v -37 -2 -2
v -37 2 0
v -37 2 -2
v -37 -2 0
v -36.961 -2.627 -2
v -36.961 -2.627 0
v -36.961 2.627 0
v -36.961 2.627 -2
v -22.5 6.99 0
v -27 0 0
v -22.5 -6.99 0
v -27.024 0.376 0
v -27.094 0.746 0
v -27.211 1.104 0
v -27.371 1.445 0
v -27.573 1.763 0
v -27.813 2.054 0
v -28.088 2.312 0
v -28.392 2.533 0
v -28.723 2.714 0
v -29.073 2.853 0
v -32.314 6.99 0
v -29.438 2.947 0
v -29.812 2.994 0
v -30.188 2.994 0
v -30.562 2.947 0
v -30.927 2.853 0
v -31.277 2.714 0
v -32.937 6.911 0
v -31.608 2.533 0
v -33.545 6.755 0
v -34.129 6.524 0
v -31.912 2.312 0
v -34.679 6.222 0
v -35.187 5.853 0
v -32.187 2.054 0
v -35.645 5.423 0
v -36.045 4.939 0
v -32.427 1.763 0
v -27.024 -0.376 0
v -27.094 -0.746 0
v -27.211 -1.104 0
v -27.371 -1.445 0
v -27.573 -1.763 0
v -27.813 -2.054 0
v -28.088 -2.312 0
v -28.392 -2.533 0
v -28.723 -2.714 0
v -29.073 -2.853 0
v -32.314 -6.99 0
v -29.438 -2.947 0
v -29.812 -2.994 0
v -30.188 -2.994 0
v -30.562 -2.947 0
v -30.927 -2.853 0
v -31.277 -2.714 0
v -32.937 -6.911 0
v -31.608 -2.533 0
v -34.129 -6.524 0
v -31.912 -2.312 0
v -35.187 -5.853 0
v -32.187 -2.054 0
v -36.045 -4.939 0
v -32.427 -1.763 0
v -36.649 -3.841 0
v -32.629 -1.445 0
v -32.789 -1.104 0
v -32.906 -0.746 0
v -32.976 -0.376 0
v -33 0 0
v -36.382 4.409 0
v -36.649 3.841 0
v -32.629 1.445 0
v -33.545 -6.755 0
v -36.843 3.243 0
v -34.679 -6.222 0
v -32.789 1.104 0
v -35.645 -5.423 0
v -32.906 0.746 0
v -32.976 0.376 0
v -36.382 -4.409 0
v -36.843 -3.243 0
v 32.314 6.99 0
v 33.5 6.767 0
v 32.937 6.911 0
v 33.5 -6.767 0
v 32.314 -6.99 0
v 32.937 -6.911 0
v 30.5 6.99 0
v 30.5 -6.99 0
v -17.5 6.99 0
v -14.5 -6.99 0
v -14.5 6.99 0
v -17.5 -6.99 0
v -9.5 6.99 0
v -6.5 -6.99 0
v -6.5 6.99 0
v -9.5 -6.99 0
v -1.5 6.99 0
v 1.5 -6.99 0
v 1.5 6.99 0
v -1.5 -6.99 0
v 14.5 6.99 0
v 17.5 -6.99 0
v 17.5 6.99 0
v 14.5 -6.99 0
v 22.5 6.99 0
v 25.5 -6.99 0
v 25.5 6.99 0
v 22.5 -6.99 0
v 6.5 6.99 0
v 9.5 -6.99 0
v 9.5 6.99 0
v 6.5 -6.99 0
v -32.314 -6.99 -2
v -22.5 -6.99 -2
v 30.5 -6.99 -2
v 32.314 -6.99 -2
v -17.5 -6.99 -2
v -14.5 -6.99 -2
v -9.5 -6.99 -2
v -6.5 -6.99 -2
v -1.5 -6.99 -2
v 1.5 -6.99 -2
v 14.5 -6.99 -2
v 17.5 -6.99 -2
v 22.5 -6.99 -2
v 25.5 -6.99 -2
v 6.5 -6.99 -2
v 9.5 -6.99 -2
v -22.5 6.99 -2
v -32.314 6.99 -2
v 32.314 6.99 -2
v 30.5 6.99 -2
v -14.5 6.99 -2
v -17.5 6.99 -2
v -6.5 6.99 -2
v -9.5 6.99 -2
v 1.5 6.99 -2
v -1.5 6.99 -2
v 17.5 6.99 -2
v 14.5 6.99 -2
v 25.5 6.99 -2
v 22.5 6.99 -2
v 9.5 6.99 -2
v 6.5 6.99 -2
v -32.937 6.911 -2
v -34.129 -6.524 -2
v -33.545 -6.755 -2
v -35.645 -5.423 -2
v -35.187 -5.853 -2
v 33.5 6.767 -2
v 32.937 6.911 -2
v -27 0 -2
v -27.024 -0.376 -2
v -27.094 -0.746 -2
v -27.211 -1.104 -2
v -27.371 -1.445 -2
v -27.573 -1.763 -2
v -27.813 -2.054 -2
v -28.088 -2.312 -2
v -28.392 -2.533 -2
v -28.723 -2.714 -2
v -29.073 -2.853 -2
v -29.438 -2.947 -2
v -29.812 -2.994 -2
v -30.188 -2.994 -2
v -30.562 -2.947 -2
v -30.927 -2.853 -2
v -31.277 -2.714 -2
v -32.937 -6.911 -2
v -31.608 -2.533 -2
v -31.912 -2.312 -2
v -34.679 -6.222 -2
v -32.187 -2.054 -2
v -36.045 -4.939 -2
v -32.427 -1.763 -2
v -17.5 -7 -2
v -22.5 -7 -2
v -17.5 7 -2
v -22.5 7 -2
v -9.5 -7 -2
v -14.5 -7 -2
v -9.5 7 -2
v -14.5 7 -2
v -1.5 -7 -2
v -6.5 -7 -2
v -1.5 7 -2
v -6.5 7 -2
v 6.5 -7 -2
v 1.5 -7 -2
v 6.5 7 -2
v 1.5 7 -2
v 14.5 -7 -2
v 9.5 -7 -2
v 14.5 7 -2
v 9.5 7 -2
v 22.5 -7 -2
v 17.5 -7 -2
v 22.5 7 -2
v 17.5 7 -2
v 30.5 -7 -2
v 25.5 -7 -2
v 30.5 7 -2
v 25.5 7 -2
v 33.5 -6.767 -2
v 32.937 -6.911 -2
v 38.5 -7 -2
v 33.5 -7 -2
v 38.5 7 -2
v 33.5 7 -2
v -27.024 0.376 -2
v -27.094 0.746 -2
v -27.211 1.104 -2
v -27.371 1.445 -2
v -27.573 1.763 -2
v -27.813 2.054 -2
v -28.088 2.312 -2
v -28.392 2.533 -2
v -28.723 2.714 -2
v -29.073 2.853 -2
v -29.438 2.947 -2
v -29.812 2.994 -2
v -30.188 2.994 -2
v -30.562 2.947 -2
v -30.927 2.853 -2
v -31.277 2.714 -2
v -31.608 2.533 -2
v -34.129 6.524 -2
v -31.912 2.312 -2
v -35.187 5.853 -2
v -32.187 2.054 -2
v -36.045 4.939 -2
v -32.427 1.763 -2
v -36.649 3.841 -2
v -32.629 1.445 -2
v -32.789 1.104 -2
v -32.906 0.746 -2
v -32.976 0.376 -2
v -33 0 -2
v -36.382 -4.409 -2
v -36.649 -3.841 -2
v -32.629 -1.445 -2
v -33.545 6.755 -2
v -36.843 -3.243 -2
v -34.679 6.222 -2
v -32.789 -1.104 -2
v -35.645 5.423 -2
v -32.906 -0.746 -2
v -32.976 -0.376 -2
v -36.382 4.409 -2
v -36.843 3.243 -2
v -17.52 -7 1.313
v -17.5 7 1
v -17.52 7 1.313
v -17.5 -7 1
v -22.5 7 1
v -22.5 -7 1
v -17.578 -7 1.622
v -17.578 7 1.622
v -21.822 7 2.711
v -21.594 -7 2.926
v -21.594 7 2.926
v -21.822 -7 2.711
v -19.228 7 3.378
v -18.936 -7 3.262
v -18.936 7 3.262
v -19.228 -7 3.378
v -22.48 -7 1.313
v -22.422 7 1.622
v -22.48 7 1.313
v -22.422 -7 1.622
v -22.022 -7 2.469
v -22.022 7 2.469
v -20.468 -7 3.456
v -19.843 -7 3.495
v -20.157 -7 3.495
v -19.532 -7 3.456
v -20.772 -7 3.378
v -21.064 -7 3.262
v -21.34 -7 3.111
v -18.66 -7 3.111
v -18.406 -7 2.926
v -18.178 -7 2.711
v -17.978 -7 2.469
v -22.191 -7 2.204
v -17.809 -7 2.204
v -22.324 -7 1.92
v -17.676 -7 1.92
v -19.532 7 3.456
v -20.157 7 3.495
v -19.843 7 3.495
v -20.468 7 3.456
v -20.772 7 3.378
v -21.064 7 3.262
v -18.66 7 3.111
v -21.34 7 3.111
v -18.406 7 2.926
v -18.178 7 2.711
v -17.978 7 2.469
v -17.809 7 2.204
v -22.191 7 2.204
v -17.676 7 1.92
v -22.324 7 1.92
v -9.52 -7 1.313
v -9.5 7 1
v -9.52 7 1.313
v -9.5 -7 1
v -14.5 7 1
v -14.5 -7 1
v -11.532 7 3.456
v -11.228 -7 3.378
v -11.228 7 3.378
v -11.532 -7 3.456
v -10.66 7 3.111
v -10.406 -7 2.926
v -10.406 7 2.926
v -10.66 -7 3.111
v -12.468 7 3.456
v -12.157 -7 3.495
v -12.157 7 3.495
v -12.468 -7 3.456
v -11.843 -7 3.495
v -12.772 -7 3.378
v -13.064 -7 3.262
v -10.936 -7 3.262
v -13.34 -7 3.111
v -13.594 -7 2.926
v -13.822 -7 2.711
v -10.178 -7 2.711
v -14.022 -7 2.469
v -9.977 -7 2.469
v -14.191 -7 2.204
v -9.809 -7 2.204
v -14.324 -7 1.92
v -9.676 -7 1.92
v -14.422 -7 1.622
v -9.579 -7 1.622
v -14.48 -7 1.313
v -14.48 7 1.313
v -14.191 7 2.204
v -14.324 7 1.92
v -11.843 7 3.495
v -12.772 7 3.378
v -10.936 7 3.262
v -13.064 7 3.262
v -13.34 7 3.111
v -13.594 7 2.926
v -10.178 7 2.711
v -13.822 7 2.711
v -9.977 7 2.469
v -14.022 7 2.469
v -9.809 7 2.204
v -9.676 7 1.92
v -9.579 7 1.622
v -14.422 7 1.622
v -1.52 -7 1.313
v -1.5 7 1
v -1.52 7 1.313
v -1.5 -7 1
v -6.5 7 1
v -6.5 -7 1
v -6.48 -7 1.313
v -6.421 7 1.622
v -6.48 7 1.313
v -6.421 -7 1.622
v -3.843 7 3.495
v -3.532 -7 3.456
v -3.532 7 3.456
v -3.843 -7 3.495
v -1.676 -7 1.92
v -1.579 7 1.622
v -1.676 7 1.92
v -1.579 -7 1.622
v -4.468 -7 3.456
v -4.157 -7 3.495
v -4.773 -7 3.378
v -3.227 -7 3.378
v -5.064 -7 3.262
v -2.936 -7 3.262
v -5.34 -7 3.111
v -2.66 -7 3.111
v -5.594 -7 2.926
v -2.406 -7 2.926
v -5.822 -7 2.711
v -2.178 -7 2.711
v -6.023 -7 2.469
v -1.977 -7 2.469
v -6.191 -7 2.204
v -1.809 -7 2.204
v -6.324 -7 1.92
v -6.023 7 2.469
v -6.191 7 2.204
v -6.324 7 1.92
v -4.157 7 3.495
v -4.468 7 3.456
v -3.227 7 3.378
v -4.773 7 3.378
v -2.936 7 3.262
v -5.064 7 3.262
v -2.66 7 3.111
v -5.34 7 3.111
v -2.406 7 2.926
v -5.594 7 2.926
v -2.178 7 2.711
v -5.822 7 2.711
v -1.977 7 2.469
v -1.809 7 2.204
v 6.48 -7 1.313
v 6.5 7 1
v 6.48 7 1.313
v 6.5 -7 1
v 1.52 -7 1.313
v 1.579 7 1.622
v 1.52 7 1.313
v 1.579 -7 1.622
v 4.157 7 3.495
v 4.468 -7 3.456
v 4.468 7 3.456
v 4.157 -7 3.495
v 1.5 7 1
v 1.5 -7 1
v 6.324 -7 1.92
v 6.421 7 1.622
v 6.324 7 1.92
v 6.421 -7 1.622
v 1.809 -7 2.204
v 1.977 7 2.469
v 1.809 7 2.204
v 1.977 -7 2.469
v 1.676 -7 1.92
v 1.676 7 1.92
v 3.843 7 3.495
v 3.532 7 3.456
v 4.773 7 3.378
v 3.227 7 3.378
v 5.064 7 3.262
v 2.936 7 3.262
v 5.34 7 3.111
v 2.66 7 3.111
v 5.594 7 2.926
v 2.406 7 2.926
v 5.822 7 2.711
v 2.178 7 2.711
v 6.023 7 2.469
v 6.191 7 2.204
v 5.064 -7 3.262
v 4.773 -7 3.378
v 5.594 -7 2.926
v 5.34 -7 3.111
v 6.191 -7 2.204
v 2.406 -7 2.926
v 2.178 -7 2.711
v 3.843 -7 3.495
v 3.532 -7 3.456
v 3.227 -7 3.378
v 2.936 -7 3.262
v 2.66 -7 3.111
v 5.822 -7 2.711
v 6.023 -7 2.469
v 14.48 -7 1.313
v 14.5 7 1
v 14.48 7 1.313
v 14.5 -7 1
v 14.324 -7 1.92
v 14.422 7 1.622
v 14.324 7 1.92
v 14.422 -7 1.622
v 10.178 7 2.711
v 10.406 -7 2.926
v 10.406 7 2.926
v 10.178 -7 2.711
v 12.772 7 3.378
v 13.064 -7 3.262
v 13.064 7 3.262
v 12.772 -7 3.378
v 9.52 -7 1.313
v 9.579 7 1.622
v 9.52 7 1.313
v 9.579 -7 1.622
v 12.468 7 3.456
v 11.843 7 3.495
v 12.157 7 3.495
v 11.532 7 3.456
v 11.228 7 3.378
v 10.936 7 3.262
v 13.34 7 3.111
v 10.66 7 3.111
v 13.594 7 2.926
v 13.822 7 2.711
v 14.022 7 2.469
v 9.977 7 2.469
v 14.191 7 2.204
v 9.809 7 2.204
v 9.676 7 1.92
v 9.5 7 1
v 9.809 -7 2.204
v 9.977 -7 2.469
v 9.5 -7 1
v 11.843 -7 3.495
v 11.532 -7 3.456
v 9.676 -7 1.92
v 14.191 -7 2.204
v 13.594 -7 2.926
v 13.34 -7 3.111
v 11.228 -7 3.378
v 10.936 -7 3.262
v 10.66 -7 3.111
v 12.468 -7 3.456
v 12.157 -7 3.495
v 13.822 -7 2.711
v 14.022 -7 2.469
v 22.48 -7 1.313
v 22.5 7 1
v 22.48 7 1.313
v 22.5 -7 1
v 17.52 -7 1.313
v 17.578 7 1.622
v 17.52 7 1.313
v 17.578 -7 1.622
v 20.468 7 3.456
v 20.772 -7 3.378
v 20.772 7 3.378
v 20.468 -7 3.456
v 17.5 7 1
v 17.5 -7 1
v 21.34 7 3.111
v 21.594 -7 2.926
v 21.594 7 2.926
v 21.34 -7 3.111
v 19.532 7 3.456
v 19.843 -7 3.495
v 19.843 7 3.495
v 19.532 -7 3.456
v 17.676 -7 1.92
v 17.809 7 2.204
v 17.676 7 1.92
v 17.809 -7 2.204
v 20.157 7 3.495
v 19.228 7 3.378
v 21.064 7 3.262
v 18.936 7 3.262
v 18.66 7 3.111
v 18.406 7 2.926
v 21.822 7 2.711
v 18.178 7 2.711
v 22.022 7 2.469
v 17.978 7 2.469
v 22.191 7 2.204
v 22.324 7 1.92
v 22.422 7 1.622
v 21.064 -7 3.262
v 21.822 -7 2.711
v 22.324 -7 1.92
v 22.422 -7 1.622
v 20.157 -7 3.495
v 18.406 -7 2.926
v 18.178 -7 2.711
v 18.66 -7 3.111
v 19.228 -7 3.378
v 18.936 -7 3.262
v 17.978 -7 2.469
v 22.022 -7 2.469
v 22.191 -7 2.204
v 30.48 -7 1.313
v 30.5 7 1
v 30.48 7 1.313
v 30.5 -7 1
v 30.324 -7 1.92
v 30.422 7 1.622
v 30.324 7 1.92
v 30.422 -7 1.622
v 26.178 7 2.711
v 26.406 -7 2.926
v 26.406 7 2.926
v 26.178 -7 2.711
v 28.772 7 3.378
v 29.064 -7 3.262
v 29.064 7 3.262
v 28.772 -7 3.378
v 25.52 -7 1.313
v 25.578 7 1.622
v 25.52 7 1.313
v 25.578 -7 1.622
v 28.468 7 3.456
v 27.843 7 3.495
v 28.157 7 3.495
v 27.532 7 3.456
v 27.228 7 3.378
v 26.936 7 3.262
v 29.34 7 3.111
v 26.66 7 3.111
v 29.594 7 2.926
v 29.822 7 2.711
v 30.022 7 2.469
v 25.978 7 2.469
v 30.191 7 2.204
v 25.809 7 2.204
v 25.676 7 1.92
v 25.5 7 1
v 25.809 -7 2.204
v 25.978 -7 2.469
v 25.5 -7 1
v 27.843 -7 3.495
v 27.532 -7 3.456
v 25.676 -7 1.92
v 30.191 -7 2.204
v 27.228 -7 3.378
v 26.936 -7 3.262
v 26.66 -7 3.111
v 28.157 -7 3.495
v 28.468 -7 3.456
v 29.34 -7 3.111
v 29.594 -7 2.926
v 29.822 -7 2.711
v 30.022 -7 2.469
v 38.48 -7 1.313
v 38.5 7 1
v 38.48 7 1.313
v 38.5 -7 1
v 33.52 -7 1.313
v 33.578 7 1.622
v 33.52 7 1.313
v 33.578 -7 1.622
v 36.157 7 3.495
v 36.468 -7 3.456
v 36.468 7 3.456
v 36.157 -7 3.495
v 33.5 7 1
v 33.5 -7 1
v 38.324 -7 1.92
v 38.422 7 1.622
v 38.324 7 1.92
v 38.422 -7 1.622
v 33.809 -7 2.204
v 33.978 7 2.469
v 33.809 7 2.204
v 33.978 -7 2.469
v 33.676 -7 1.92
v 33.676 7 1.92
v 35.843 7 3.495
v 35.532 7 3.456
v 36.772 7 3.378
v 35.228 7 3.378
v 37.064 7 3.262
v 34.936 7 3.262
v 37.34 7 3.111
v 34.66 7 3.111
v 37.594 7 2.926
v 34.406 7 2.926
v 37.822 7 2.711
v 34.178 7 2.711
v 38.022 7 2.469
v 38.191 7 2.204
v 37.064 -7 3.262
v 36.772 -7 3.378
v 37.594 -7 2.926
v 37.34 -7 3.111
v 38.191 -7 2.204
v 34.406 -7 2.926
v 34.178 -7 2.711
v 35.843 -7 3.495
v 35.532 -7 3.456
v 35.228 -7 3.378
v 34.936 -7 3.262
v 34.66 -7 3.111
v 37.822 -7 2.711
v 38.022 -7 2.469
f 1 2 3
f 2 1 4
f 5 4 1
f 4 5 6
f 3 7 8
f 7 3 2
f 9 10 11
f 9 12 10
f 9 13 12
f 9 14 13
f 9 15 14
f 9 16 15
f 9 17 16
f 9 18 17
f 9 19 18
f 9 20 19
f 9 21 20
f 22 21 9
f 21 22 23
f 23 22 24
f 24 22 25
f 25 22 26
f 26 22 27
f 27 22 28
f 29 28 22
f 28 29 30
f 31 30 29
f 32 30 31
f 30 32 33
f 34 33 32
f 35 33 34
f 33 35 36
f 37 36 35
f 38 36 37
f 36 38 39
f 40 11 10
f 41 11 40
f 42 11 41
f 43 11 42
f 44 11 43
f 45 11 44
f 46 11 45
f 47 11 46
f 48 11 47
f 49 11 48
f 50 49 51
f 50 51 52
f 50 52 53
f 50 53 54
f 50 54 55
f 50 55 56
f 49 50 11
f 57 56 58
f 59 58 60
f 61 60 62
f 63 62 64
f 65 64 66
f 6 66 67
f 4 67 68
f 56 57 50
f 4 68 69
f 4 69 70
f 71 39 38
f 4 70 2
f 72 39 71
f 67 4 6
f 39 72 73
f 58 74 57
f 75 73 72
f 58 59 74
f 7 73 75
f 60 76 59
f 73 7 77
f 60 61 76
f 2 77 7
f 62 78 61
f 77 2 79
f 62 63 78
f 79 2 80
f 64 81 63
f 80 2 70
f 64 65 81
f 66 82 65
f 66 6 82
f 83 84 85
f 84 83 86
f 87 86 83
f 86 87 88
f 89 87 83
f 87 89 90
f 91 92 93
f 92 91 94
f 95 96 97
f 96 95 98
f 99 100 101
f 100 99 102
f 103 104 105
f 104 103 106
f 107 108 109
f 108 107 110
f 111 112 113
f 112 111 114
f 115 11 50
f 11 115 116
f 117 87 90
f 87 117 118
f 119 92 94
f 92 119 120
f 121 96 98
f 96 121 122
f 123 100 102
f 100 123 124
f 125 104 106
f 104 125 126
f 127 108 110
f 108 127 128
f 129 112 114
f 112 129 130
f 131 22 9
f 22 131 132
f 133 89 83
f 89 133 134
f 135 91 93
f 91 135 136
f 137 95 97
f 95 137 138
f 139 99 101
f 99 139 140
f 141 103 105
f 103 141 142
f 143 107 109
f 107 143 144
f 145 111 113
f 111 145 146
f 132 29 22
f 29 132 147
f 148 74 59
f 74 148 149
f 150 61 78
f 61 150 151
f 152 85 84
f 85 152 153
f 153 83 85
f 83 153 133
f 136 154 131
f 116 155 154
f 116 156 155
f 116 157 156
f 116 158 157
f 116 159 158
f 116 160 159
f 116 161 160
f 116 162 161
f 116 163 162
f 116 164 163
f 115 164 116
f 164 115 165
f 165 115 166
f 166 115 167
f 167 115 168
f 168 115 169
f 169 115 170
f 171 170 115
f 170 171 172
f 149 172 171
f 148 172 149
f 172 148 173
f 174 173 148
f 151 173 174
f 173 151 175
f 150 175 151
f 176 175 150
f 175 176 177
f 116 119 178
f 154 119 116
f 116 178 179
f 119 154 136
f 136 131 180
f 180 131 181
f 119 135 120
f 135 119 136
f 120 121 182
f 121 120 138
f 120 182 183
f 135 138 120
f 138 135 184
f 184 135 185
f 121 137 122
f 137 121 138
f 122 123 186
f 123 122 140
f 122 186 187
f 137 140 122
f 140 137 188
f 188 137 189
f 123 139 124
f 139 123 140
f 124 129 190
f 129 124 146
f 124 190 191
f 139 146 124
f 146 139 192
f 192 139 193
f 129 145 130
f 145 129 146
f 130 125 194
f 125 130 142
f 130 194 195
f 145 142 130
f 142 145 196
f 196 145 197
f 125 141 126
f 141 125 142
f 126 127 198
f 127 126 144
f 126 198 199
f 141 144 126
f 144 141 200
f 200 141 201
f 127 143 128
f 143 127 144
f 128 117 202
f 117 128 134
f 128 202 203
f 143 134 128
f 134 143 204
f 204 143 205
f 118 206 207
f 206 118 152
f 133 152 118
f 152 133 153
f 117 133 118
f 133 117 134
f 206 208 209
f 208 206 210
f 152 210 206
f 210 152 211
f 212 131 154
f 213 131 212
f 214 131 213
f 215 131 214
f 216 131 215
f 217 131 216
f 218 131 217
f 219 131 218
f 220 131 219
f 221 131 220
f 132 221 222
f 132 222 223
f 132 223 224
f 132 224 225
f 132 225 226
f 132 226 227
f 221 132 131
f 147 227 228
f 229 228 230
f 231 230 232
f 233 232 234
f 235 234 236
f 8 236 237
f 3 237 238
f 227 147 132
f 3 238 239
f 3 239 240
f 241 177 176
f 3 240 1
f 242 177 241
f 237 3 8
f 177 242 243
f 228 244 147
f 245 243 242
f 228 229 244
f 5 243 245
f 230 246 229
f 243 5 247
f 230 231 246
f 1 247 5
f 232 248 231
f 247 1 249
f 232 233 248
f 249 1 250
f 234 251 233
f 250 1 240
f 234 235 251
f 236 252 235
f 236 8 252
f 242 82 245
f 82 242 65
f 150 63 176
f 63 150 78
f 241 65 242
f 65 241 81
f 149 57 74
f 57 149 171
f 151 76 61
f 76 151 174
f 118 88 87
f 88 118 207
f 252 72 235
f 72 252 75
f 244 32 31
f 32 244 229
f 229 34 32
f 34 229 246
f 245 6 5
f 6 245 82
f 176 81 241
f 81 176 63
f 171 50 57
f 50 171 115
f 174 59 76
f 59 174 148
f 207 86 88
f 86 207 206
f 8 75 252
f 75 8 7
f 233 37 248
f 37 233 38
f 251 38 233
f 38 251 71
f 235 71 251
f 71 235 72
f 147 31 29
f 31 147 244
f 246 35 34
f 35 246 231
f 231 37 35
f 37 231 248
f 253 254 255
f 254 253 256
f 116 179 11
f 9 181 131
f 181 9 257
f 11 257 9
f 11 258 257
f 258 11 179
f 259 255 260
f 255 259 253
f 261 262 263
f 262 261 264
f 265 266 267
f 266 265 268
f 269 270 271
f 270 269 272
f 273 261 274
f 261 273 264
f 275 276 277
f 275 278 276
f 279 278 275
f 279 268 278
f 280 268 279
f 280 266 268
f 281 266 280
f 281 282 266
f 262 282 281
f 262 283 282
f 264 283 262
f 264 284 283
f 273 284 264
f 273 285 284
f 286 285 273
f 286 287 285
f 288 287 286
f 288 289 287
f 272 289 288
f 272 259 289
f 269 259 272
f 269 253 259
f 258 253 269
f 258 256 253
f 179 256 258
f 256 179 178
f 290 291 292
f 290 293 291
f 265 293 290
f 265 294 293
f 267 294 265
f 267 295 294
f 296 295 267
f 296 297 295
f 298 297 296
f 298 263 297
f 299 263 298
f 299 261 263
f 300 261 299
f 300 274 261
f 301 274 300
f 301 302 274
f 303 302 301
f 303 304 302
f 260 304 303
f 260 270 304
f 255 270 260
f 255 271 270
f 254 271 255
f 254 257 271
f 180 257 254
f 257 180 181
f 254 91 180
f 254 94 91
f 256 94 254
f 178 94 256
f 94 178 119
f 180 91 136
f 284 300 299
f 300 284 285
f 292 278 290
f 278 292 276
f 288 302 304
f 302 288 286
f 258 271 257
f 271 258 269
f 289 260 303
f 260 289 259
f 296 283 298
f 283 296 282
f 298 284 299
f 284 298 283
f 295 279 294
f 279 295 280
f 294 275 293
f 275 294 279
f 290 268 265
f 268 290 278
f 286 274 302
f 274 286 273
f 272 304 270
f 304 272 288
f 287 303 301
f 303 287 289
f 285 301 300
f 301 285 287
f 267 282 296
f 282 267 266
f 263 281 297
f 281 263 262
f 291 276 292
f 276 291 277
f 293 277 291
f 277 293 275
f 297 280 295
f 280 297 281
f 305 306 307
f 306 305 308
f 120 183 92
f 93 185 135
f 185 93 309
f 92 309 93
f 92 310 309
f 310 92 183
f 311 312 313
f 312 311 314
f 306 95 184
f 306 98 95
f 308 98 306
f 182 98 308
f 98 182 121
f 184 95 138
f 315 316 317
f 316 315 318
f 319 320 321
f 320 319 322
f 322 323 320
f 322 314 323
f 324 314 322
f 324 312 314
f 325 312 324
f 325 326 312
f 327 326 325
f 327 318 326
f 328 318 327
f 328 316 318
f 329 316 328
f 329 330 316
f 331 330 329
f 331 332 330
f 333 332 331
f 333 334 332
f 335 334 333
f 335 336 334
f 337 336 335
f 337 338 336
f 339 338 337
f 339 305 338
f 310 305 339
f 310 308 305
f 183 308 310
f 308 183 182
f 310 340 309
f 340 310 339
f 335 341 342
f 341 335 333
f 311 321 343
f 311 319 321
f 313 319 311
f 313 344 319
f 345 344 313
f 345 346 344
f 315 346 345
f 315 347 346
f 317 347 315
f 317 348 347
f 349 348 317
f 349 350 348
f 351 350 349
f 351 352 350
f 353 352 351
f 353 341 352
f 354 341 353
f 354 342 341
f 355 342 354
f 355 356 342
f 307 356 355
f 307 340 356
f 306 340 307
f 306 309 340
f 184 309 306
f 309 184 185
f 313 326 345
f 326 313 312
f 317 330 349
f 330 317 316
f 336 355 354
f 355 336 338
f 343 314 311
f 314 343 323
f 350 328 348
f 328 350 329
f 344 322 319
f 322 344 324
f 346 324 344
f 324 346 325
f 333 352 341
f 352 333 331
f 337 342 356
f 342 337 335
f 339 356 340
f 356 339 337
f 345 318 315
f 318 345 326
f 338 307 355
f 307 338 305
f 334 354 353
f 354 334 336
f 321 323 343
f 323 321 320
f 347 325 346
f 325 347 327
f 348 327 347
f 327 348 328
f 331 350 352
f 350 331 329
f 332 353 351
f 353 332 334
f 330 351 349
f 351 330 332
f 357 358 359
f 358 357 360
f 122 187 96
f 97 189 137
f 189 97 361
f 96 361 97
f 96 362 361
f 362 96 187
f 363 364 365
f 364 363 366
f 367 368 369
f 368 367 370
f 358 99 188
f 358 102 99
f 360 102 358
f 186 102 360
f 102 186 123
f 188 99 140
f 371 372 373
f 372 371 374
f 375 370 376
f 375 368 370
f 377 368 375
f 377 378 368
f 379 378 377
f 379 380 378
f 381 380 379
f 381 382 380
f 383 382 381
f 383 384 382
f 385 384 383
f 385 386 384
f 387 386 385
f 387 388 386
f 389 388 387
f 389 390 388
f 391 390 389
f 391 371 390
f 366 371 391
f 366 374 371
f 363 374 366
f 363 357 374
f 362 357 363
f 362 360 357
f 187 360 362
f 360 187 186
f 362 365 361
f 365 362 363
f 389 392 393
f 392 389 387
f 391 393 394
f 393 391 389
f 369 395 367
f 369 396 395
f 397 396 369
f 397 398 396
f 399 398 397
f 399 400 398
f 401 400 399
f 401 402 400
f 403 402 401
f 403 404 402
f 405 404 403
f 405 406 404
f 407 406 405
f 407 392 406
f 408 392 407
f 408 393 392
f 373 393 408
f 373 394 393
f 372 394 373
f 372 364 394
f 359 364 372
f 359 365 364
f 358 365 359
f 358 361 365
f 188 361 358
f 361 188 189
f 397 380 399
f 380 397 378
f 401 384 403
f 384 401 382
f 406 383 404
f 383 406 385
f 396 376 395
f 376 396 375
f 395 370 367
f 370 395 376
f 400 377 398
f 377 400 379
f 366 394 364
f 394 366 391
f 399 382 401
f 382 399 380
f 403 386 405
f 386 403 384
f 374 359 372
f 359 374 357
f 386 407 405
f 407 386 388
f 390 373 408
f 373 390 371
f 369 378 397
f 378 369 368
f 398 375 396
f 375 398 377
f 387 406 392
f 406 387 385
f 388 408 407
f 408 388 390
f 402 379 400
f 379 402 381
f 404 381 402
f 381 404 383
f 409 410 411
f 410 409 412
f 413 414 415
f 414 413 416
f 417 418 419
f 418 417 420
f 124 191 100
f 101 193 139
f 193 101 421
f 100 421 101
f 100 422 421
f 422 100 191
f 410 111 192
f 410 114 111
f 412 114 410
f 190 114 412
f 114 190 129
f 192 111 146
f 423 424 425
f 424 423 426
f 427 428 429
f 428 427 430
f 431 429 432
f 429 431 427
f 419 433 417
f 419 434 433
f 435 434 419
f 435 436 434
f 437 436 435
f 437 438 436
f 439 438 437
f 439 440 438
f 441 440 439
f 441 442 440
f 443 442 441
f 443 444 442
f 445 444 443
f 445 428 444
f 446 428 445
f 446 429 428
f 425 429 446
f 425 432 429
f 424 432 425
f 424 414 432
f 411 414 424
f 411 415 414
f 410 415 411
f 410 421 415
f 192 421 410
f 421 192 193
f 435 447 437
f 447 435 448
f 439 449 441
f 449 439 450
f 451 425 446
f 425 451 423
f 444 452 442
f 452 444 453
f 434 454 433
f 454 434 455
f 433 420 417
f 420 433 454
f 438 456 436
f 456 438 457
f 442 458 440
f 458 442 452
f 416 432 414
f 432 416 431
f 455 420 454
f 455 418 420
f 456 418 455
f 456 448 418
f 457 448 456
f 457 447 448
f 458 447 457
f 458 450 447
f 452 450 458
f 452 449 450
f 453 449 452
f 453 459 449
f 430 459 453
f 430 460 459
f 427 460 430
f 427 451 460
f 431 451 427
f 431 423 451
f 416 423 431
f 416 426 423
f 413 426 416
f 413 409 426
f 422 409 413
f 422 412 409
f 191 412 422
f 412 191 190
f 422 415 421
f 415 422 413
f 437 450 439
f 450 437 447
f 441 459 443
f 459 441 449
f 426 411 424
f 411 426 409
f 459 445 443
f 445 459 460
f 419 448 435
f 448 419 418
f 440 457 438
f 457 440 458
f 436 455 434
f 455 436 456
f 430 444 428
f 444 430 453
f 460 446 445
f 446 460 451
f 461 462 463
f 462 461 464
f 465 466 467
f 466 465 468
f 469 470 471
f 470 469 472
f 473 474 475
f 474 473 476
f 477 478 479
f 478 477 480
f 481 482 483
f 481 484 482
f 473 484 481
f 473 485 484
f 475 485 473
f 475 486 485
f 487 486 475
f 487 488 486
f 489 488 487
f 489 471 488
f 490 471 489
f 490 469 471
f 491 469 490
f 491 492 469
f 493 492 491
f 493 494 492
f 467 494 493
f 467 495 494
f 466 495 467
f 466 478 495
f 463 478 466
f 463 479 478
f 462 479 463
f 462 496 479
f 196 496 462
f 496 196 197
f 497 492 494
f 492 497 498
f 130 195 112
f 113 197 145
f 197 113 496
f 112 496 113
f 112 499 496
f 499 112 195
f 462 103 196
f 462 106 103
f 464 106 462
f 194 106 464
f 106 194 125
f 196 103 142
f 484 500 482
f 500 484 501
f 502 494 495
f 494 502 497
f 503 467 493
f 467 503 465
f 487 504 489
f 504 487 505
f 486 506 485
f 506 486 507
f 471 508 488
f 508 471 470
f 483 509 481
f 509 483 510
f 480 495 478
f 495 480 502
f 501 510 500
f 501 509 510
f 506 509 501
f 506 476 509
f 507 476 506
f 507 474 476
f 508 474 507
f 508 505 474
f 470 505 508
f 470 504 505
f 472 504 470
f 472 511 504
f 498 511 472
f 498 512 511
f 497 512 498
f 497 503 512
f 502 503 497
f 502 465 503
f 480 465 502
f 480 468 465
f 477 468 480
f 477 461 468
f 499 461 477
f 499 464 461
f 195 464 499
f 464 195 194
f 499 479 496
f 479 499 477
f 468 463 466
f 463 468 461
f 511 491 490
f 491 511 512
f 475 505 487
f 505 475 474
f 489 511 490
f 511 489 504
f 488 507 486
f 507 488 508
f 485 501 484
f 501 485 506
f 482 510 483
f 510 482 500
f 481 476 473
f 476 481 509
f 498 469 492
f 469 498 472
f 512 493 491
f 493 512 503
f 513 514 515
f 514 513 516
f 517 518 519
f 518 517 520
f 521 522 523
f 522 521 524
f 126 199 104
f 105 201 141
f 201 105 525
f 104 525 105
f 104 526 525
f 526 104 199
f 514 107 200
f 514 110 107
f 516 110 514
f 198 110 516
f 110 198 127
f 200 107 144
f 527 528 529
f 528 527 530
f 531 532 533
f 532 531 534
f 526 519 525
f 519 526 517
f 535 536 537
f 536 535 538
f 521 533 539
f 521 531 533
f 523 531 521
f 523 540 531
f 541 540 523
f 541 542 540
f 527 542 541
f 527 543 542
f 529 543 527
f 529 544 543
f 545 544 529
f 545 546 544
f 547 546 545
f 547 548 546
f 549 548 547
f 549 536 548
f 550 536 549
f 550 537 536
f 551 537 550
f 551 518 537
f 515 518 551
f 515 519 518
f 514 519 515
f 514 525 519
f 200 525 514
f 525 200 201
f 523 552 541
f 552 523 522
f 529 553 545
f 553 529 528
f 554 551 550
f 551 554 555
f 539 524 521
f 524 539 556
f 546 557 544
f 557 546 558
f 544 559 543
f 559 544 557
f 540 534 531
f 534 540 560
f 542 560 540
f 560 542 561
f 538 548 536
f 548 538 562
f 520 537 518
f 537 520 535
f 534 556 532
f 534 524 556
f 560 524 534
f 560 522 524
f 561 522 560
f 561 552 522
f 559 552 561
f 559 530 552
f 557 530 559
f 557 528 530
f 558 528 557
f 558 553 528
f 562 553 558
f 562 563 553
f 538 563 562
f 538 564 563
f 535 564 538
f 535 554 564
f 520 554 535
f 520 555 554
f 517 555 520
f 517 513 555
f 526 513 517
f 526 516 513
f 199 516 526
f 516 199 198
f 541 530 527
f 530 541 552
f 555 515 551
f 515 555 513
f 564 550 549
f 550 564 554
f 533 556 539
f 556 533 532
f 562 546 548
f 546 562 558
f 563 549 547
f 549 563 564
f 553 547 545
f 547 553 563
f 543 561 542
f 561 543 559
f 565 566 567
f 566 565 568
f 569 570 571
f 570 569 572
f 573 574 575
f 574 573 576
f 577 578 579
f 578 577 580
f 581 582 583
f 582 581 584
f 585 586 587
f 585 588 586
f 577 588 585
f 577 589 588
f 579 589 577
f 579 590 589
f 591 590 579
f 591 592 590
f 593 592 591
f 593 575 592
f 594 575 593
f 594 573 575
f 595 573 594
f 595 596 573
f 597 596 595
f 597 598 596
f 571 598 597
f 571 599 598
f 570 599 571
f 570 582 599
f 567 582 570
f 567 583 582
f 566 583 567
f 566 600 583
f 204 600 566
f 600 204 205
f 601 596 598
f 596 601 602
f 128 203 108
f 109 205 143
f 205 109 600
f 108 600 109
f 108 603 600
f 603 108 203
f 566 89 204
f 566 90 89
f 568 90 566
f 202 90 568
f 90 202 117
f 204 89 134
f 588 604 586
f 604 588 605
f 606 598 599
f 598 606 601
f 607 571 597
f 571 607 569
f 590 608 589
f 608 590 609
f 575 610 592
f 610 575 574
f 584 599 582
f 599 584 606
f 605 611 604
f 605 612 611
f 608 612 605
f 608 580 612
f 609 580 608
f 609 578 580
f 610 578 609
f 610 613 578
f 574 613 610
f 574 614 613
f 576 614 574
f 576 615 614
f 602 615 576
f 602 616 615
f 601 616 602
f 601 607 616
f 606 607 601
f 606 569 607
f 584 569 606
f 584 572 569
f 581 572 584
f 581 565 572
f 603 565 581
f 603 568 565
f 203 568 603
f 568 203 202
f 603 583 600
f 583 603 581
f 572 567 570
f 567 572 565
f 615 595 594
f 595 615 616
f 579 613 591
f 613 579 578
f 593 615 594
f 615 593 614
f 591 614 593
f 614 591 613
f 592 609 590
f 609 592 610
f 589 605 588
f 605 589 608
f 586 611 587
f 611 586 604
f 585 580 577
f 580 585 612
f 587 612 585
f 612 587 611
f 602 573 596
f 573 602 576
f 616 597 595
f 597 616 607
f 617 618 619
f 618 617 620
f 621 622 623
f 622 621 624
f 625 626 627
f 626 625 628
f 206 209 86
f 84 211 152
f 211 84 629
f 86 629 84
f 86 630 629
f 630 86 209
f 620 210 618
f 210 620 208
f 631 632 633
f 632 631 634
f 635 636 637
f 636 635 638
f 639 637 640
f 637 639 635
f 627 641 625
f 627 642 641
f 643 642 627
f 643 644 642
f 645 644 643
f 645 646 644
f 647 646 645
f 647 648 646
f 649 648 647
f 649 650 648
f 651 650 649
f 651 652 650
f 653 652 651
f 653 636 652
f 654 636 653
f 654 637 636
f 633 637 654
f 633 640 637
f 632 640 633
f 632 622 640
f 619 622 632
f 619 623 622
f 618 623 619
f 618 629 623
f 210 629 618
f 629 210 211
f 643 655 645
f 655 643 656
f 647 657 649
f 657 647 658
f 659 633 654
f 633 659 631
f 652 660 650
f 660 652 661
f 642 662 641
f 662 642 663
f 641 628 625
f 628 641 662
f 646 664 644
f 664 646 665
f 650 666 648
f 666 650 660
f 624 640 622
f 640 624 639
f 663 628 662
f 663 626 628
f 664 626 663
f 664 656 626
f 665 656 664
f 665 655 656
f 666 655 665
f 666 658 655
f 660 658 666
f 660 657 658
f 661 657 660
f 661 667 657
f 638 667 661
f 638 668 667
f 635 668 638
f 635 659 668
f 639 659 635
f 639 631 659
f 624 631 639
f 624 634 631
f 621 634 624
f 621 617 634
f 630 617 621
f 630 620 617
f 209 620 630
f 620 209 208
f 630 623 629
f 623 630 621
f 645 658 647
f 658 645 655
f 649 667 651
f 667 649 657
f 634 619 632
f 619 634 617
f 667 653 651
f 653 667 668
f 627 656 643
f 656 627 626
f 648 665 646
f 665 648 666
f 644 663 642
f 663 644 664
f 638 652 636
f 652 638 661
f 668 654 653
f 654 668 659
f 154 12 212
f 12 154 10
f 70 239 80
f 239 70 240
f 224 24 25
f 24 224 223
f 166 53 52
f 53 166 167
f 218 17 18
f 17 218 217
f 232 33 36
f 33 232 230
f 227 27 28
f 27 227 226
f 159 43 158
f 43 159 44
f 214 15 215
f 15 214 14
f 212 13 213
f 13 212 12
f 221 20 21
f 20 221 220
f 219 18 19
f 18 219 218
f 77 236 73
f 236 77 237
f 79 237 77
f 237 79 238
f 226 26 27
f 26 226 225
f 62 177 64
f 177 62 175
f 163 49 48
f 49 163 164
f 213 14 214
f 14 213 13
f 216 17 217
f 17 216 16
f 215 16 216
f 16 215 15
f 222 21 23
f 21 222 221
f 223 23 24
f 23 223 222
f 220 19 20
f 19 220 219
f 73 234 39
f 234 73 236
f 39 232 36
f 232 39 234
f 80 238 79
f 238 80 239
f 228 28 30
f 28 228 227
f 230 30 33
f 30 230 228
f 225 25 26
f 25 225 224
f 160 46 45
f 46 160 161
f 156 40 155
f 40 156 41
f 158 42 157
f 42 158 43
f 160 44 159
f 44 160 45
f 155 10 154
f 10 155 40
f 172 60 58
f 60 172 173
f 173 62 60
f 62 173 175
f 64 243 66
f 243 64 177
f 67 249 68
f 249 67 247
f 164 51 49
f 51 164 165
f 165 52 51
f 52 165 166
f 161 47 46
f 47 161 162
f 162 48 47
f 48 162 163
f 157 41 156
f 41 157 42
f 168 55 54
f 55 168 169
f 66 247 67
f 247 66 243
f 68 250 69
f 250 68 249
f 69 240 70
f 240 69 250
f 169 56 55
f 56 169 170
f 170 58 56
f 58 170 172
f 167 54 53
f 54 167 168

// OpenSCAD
$fn = 50;


difference() {
	union() {
		translate(v = [0, 0, -2]) {
			hull() {
				translate(v = [-32.0000000000, 2.0000000000, 0]) {
					cylinder(h = 2, r = 5);
				}
				translate(v = [32.0000000000, 2.0000000000, 0]) {
					cylinder(h = 2, r = 5);
				}
				translate(v = [-32.0000000000, -2.0000000000, 0]) {
					cylinder(h = 2, r = 5);
				}
				translate(v = [32.0000000000, -2.0000000000, 0]) {
					cylinder(h = 2, r = 5);
				}
			}
		}
		translate(v = [-20.0000000000, 7.0000000000, -1.5000000000]) {
			rotate(a = [90, 0, 0]) {
				hull() {
					translate(v = [-0.0000000000, 2.5000000000, 0]) {
						cylinder(h = 14, r = 2.5000000000);
					}
					translate(v = [0.0000000000, 2.5000000000, 0]) {
						cylinder(h = 14, r = 2.5000000000);
					}
					translate(v = [-0.0000000000, -2.5000000000, 0]) {
						cylinder(h = 14, r = 2.5000000000);
					}
					translate(v = [0.0000000000, -2.5000000000, 0]) {
						cylinder(h = 14, r = 2.5000000000);
					}
				}
			}
		}
		translate(v = [-12.0000000000, 7.0000000000, -1.5000000000]) {
			rotate(a = [90, 0, 0]) {
				hull() {
					translate(v = [-0.0000000000, 2.5000000000, 0]) {
						cylinder(h = 14, r = 2.5000000000);
					}
					translate(v = [0.0000000000, 2.5000000000, 0]) {
						cylinder(h = 14, r = 2.5000000000);
					}
					translate(v = [-0.0000000000, -2.5000000000, 0]) {
						cylinder(h = 14, r = 2.5000000000);
					}
					translate(v = [0.0000000000, -2.5000000000, 0]) {
						cylinder(h = 14, r = 2.5000000000);
					}
				}
			}
		}
		translate(v = [-4.0000000000, 7.0000000000, -1.5000000000]) {
			rotate(a = [90, 0, 0]) {
				hull() {
					translate(v = [-0.0000000000, 2.5000000000, 0]) {
						cylinder(h = 14, r = 2.5000000000);
					}
					translate(v = [0.0000000000, 2.5000000000, 0]) {
						cylinder(h = 14, r = 2.5000000000);
					}
					translate(v = [-0.0000000000, -2.5000000000, 0]) {
						cylinder(h = 14, r = 2.5000000000);
					}
					translate(v = [0.0000000000, -2.5000000000, 0]) {
						cylinder(h = 14, r = 2.5000000000);
					}
				}
			}
		}
		translate(v = [4.0000000000, 7.0000000000, -1.5000000000]) {
			rotate(a = [90, 0, 0]) {
				hull() {
					translate(v = [-0.0000000000, 2.5000000000, 0]) {
						cylinder(h = 14, r = 2.5000000000);
					}
					translate(v = [0.0000000000, 2.5000000000, 0]) {
						cylinder(h = 14, r = 2.5000000000);
					}
					translate(v = [-0.0000000000, -2.5000000000, 0]) {
						cylinder(h = 14, r = 2.5000000000);
					}
					translate(v = [0.0000000000, -2.5000000000, 0]) {
						cylinder(h = 14, r = 2.5000000000);
					}
				}
			}
		}
		translate(v = [12.0000000000, 7.0000000000, -1.5000000000]) {
			rotate(a = [90, 0, 0]) {
				hull() {
					translate(v = [-0.0000000000, 2.5000000000, 0]) {
						cylinder(h = 14, r = 2.5000000000);
					}
					translate(v = [0.0000000000, 2.5000000000, 0]) {
						cylinder(h = 14, r = 2.5000000000);
					}
					translate(v = [-0.0000000000, -2.5000000000, 0]) {
						cylinder(h = 14, r = 2.5000000000);
					}
					translate(v = [0.0000000000, -2.5000000000, 0]) {
						cylinder(h = 14, r = 2.5000000000);
					}
				}
			}
		}
		translate(v = [20.0000000000, 7.0000000000, -1.5000000000]) {
			rotate(a = [90, 0, 0]) {
				hull() {
					translate(v = [-0.0000000000, 2.5000000000, 0]) {
						cylinder(h = 14, r = 2.5000000000);
					}
					translate(v = [0.0000000000, 2.5000000000, 0]) {
						cylinder(h = 14, r = 2.5000000000);
					}
					translate(v = [-0.0000000000, -2.5000000000, 0]) {
						cylinder(h = 14, r = 2.5000000000);
					}
					translate(v = [0.0000000000, -2.5000000000, 0]) {
						cylinder(h = 14, r = 2.5000000000);
					}
				}
			}
		}
		translate(v = [28.0000000000, 7.0000000000, -1.5000000000]) {
			rotate(a = [90, 0, 0]) {
				hull() {
					translate(v = [-0.0000000000, 2.5000000000, 0]) {
						cylinder(h = 14, r = 2.5000000000);
					}
					translate(v = [0.0000000000, 2.5000000000, 0]) {
						cylinder(h = 14, r = 2.5000000000);
					}
					translate(v = [-0.0000000000, -2.5000000000, 0]) {
						cylinder(h = 14, r = 2.5000000000);
					}
					translate(v = [0.0000000000, -2.5000000000, 0]) {
						cylinder(h = 14, r = 2.5000000000);
					}
				}
			}
		}
		translate(v = [36.0000000000, 7.0000000000, -1.5000000000]) {
			rotate(a = [90, 0, 0]) {
				hull() {
					translate(v = [-0.0000000000, 2.5000000000, 0]) {
						cylinder(h = 14, r = 2.5000000000);
					}
					translate(v = [0.0000000000, 2.5000000000, 0]) {
						cylinder(h = 14, r = 2.5000000000);
					}
					translate(v = [-0.0000000000, -2.5000000000, 0]) {
						cylinder(h = 14, r = 2.5000000000);
					}
					translate(v = [0.0000000000, -2.5000000000, 0]) {
						cylinder(h = 14, r = 2.5000000000);
					}
				}
			}
		}
	}
	union() {
		translate(v = [-250.0000000000, -250.0000000000, -502]) {
			cube(size = [500, 500, 500]);
		}
		translate(v = [-250.0000000000, -250.0000000000, -502]) {
			cube(size = [500, 500, 500]);
		}
		translate(v = [-250.0000000000, -250.0000000000, -502]) {
			cube(size = [500, 500, 500]);
		}
		translate(v = [-30.0000000000, 0.0000000000, -100.0000000000]) {
			cylinder(h = 200, r = 3.0000000000);
		}
		translate(v = [-30.0000000000, 0.0000000000, -100.0000000000]) {
			cylinder(h = 200, r = 1.5000000000);
		}
		translate(v = [-30.0000000000, 0.0000000000, -100.0000000000]) {
			cylinder(h = 200, r = 1.5000000000);
		}
		translate(v = [-30.0000000000, 0.0000000000, -100.0000000000]) {
			cylinder(h = 200, r = 1.5000000000);
		}
	}
}
